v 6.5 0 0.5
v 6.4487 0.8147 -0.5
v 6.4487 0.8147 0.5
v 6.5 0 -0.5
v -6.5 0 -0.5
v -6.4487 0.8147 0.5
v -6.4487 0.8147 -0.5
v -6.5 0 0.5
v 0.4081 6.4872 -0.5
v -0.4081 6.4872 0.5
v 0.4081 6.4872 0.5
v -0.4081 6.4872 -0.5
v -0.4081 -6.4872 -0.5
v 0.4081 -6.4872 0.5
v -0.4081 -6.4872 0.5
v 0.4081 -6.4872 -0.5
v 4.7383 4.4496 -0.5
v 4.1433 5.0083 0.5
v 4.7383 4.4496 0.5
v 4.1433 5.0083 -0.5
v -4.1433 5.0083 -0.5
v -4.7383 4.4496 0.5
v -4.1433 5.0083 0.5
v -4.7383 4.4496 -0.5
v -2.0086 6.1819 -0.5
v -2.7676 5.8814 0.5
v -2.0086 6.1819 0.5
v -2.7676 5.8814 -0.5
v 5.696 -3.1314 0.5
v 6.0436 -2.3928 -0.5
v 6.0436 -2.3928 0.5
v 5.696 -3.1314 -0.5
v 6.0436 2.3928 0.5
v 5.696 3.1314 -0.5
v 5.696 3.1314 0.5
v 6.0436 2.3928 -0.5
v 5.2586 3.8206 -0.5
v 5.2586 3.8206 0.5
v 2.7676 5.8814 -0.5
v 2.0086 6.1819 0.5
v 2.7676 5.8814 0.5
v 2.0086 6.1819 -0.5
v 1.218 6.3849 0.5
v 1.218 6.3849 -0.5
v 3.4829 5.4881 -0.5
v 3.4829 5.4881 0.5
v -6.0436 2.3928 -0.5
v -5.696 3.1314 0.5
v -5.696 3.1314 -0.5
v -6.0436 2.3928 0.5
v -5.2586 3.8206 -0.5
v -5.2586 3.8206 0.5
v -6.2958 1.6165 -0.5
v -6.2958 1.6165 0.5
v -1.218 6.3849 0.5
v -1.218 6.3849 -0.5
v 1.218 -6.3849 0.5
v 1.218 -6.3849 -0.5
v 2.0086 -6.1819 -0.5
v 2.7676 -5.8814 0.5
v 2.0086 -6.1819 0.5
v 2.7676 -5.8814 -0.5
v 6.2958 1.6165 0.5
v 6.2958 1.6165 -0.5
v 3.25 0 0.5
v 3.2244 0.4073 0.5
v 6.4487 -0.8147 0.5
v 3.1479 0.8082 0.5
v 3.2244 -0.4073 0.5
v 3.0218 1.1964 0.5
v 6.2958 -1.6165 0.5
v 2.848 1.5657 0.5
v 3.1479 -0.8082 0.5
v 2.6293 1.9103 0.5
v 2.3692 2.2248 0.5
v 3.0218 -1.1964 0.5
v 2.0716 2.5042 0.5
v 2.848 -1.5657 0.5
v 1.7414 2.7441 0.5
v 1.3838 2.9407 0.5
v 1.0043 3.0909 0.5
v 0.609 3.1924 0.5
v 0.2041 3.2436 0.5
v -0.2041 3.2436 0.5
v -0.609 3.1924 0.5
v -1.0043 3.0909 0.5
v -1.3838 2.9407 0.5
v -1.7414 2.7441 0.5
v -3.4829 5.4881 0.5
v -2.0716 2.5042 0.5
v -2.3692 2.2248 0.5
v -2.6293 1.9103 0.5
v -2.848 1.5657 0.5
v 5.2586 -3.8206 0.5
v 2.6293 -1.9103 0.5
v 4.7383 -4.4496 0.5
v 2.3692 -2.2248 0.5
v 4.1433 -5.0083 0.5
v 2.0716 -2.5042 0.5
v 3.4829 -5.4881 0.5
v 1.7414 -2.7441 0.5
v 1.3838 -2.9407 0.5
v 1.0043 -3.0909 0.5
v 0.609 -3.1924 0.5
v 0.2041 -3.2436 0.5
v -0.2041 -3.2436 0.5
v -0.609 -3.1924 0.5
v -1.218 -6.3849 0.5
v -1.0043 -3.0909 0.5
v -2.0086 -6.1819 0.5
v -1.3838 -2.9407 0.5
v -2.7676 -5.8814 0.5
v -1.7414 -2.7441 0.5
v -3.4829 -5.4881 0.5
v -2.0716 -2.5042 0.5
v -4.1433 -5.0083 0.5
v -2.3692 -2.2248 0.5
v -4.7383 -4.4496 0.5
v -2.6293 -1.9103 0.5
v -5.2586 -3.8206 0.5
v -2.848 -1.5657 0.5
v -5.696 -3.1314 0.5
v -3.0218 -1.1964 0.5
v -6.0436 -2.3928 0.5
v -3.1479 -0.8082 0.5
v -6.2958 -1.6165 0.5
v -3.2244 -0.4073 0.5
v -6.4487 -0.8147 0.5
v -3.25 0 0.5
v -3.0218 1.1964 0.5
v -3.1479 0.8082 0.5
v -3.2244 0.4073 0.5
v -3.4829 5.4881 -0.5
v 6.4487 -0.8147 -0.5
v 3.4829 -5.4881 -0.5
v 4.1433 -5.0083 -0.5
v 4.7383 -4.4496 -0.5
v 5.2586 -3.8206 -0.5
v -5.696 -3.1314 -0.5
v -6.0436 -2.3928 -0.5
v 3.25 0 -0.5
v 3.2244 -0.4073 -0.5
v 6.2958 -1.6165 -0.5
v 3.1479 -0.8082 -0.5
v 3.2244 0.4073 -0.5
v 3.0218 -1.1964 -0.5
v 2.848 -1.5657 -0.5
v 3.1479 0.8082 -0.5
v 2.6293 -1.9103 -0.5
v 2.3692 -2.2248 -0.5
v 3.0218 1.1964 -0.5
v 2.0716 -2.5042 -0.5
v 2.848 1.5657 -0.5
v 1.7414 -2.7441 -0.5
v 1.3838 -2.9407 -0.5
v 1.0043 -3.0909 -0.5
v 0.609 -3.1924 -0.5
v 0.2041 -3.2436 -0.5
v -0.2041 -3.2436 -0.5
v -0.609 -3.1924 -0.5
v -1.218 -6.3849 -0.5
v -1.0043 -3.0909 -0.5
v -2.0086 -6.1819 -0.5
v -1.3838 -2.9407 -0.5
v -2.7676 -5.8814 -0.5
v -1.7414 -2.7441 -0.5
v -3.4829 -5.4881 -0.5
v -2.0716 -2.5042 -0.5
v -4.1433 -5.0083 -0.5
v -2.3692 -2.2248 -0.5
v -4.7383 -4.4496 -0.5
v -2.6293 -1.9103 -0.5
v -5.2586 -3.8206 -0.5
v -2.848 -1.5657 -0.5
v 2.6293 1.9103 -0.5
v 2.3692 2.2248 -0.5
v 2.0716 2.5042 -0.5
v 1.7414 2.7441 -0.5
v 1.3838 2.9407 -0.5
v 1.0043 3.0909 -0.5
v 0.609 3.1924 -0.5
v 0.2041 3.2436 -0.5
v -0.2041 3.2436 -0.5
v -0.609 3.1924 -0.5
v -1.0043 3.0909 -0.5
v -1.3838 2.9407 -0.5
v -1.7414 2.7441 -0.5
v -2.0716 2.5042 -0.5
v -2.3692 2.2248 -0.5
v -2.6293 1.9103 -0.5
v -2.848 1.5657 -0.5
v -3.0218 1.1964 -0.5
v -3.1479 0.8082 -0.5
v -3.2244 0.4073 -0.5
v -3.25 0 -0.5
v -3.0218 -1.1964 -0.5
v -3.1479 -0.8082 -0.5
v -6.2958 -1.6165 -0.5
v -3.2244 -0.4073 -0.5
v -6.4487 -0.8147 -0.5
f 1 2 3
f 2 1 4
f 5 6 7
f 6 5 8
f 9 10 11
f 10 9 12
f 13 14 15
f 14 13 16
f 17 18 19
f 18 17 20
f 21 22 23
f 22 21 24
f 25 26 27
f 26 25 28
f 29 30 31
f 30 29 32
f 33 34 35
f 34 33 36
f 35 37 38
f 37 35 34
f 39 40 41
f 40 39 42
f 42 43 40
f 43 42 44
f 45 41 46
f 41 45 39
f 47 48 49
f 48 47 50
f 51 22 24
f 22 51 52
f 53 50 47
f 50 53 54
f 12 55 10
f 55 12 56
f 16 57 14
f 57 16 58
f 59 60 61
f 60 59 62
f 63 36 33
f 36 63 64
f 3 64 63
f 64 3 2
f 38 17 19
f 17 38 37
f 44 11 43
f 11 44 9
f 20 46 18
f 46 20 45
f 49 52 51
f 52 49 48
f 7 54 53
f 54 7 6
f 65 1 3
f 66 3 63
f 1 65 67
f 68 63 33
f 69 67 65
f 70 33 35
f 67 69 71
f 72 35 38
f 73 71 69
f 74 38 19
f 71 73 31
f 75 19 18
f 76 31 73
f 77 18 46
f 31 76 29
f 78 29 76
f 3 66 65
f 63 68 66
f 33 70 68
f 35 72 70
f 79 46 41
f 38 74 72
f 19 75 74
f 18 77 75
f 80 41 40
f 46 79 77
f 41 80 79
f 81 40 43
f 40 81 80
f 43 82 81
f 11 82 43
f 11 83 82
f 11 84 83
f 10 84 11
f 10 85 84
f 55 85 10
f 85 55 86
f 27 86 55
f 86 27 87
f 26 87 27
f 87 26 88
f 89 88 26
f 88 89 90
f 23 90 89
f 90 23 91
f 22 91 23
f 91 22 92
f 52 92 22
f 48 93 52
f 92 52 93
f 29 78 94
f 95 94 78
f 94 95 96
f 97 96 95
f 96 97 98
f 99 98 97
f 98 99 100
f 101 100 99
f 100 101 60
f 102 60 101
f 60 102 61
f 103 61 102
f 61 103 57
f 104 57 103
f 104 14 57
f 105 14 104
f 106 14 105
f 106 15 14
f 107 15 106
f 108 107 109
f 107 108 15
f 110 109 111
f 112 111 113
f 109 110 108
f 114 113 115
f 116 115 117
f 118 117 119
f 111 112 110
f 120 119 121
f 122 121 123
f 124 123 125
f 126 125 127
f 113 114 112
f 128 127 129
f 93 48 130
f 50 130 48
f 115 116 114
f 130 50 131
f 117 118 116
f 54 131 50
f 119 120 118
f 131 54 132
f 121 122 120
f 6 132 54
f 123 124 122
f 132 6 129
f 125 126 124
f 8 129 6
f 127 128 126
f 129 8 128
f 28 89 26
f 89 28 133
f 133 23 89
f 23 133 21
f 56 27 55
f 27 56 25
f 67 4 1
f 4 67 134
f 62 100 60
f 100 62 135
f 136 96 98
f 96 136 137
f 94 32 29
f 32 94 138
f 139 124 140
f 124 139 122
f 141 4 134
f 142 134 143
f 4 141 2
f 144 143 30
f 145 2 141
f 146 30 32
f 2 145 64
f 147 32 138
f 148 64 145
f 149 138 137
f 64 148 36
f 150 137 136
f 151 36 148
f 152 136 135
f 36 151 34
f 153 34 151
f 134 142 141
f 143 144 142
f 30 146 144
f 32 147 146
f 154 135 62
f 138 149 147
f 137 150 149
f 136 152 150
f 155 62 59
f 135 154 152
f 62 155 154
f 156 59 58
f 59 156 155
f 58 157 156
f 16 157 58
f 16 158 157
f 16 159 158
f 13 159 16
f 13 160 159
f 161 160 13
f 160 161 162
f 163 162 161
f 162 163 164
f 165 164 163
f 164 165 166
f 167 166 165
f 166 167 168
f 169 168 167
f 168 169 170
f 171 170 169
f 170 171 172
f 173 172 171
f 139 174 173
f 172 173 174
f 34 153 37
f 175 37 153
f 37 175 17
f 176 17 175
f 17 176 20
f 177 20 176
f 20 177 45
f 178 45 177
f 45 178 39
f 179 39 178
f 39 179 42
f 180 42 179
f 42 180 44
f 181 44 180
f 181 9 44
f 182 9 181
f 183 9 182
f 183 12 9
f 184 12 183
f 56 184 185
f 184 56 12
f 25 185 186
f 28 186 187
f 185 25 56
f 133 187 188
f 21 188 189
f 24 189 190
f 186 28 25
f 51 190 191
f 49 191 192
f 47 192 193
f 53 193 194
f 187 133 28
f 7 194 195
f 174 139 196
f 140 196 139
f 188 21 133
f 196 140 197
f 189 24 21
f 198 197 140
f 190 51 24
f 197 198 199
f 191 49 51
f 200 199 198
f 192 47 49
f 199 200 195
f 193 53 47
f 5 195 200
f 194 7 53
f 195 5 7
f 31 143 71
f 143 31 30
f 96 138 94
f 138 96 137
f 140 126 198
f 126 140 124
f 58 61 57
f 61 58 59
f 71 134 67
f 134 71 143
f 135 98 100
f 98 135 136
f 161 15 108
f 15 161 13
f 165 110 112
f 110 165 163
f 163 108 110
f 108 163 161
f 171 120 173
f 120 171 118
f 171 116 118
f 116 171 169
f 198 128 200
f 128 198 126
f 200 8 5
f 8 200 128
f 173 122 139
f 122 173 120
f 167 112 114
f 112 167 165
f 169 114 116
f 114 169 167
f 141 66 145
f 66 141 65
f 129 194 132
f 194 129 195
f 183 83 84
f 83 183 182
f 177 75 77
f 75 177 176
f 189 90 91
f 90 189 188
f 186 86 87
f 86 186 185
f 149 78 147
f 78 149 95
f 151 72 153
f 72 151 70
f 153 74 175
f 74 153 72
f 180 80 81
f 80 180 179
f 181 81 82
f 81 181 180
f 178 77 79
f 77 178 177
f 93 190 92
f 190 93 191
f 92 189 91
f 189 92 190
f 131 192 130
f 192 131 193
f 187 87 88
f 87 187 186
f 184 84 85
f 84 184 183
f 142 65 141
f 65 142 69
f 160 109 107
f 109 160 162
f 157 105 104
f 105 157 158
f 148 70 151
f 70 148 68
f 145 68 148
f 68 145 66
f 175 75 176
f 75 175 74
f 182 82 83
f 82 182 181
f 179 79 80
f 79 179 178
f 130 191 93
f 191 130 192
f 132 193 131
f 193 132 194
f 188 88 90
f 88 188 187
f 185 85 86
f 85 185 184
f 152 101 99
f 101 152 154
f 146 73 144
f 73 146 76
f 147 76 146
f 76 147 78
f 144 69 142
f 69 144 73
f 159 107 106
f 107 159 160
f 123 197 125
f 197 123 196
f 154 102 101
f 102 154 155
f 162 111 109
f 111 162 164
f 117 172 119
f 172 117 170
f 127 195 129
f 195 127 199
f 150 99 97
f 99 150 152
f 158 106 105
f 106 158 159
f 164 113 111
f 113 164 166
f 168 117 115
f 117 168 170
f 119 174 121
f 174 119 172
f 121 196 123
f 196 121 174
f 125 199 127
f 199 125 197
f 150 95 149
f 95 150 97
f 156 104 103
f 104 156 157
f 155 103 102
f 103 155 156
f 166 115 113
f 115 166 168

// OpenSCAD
$fn = 50;


difference() {
	union() {
		translate(v = [0, 0, -0.5000000000]) {
			cylinder(h = 1, r = 6.5000000000);
		}
	}
	union() {
		translate(v = [0, 0, -100.0000000000]) {
			cylinder(h = 200, r = 3.2500000000);
		}
	}
}
